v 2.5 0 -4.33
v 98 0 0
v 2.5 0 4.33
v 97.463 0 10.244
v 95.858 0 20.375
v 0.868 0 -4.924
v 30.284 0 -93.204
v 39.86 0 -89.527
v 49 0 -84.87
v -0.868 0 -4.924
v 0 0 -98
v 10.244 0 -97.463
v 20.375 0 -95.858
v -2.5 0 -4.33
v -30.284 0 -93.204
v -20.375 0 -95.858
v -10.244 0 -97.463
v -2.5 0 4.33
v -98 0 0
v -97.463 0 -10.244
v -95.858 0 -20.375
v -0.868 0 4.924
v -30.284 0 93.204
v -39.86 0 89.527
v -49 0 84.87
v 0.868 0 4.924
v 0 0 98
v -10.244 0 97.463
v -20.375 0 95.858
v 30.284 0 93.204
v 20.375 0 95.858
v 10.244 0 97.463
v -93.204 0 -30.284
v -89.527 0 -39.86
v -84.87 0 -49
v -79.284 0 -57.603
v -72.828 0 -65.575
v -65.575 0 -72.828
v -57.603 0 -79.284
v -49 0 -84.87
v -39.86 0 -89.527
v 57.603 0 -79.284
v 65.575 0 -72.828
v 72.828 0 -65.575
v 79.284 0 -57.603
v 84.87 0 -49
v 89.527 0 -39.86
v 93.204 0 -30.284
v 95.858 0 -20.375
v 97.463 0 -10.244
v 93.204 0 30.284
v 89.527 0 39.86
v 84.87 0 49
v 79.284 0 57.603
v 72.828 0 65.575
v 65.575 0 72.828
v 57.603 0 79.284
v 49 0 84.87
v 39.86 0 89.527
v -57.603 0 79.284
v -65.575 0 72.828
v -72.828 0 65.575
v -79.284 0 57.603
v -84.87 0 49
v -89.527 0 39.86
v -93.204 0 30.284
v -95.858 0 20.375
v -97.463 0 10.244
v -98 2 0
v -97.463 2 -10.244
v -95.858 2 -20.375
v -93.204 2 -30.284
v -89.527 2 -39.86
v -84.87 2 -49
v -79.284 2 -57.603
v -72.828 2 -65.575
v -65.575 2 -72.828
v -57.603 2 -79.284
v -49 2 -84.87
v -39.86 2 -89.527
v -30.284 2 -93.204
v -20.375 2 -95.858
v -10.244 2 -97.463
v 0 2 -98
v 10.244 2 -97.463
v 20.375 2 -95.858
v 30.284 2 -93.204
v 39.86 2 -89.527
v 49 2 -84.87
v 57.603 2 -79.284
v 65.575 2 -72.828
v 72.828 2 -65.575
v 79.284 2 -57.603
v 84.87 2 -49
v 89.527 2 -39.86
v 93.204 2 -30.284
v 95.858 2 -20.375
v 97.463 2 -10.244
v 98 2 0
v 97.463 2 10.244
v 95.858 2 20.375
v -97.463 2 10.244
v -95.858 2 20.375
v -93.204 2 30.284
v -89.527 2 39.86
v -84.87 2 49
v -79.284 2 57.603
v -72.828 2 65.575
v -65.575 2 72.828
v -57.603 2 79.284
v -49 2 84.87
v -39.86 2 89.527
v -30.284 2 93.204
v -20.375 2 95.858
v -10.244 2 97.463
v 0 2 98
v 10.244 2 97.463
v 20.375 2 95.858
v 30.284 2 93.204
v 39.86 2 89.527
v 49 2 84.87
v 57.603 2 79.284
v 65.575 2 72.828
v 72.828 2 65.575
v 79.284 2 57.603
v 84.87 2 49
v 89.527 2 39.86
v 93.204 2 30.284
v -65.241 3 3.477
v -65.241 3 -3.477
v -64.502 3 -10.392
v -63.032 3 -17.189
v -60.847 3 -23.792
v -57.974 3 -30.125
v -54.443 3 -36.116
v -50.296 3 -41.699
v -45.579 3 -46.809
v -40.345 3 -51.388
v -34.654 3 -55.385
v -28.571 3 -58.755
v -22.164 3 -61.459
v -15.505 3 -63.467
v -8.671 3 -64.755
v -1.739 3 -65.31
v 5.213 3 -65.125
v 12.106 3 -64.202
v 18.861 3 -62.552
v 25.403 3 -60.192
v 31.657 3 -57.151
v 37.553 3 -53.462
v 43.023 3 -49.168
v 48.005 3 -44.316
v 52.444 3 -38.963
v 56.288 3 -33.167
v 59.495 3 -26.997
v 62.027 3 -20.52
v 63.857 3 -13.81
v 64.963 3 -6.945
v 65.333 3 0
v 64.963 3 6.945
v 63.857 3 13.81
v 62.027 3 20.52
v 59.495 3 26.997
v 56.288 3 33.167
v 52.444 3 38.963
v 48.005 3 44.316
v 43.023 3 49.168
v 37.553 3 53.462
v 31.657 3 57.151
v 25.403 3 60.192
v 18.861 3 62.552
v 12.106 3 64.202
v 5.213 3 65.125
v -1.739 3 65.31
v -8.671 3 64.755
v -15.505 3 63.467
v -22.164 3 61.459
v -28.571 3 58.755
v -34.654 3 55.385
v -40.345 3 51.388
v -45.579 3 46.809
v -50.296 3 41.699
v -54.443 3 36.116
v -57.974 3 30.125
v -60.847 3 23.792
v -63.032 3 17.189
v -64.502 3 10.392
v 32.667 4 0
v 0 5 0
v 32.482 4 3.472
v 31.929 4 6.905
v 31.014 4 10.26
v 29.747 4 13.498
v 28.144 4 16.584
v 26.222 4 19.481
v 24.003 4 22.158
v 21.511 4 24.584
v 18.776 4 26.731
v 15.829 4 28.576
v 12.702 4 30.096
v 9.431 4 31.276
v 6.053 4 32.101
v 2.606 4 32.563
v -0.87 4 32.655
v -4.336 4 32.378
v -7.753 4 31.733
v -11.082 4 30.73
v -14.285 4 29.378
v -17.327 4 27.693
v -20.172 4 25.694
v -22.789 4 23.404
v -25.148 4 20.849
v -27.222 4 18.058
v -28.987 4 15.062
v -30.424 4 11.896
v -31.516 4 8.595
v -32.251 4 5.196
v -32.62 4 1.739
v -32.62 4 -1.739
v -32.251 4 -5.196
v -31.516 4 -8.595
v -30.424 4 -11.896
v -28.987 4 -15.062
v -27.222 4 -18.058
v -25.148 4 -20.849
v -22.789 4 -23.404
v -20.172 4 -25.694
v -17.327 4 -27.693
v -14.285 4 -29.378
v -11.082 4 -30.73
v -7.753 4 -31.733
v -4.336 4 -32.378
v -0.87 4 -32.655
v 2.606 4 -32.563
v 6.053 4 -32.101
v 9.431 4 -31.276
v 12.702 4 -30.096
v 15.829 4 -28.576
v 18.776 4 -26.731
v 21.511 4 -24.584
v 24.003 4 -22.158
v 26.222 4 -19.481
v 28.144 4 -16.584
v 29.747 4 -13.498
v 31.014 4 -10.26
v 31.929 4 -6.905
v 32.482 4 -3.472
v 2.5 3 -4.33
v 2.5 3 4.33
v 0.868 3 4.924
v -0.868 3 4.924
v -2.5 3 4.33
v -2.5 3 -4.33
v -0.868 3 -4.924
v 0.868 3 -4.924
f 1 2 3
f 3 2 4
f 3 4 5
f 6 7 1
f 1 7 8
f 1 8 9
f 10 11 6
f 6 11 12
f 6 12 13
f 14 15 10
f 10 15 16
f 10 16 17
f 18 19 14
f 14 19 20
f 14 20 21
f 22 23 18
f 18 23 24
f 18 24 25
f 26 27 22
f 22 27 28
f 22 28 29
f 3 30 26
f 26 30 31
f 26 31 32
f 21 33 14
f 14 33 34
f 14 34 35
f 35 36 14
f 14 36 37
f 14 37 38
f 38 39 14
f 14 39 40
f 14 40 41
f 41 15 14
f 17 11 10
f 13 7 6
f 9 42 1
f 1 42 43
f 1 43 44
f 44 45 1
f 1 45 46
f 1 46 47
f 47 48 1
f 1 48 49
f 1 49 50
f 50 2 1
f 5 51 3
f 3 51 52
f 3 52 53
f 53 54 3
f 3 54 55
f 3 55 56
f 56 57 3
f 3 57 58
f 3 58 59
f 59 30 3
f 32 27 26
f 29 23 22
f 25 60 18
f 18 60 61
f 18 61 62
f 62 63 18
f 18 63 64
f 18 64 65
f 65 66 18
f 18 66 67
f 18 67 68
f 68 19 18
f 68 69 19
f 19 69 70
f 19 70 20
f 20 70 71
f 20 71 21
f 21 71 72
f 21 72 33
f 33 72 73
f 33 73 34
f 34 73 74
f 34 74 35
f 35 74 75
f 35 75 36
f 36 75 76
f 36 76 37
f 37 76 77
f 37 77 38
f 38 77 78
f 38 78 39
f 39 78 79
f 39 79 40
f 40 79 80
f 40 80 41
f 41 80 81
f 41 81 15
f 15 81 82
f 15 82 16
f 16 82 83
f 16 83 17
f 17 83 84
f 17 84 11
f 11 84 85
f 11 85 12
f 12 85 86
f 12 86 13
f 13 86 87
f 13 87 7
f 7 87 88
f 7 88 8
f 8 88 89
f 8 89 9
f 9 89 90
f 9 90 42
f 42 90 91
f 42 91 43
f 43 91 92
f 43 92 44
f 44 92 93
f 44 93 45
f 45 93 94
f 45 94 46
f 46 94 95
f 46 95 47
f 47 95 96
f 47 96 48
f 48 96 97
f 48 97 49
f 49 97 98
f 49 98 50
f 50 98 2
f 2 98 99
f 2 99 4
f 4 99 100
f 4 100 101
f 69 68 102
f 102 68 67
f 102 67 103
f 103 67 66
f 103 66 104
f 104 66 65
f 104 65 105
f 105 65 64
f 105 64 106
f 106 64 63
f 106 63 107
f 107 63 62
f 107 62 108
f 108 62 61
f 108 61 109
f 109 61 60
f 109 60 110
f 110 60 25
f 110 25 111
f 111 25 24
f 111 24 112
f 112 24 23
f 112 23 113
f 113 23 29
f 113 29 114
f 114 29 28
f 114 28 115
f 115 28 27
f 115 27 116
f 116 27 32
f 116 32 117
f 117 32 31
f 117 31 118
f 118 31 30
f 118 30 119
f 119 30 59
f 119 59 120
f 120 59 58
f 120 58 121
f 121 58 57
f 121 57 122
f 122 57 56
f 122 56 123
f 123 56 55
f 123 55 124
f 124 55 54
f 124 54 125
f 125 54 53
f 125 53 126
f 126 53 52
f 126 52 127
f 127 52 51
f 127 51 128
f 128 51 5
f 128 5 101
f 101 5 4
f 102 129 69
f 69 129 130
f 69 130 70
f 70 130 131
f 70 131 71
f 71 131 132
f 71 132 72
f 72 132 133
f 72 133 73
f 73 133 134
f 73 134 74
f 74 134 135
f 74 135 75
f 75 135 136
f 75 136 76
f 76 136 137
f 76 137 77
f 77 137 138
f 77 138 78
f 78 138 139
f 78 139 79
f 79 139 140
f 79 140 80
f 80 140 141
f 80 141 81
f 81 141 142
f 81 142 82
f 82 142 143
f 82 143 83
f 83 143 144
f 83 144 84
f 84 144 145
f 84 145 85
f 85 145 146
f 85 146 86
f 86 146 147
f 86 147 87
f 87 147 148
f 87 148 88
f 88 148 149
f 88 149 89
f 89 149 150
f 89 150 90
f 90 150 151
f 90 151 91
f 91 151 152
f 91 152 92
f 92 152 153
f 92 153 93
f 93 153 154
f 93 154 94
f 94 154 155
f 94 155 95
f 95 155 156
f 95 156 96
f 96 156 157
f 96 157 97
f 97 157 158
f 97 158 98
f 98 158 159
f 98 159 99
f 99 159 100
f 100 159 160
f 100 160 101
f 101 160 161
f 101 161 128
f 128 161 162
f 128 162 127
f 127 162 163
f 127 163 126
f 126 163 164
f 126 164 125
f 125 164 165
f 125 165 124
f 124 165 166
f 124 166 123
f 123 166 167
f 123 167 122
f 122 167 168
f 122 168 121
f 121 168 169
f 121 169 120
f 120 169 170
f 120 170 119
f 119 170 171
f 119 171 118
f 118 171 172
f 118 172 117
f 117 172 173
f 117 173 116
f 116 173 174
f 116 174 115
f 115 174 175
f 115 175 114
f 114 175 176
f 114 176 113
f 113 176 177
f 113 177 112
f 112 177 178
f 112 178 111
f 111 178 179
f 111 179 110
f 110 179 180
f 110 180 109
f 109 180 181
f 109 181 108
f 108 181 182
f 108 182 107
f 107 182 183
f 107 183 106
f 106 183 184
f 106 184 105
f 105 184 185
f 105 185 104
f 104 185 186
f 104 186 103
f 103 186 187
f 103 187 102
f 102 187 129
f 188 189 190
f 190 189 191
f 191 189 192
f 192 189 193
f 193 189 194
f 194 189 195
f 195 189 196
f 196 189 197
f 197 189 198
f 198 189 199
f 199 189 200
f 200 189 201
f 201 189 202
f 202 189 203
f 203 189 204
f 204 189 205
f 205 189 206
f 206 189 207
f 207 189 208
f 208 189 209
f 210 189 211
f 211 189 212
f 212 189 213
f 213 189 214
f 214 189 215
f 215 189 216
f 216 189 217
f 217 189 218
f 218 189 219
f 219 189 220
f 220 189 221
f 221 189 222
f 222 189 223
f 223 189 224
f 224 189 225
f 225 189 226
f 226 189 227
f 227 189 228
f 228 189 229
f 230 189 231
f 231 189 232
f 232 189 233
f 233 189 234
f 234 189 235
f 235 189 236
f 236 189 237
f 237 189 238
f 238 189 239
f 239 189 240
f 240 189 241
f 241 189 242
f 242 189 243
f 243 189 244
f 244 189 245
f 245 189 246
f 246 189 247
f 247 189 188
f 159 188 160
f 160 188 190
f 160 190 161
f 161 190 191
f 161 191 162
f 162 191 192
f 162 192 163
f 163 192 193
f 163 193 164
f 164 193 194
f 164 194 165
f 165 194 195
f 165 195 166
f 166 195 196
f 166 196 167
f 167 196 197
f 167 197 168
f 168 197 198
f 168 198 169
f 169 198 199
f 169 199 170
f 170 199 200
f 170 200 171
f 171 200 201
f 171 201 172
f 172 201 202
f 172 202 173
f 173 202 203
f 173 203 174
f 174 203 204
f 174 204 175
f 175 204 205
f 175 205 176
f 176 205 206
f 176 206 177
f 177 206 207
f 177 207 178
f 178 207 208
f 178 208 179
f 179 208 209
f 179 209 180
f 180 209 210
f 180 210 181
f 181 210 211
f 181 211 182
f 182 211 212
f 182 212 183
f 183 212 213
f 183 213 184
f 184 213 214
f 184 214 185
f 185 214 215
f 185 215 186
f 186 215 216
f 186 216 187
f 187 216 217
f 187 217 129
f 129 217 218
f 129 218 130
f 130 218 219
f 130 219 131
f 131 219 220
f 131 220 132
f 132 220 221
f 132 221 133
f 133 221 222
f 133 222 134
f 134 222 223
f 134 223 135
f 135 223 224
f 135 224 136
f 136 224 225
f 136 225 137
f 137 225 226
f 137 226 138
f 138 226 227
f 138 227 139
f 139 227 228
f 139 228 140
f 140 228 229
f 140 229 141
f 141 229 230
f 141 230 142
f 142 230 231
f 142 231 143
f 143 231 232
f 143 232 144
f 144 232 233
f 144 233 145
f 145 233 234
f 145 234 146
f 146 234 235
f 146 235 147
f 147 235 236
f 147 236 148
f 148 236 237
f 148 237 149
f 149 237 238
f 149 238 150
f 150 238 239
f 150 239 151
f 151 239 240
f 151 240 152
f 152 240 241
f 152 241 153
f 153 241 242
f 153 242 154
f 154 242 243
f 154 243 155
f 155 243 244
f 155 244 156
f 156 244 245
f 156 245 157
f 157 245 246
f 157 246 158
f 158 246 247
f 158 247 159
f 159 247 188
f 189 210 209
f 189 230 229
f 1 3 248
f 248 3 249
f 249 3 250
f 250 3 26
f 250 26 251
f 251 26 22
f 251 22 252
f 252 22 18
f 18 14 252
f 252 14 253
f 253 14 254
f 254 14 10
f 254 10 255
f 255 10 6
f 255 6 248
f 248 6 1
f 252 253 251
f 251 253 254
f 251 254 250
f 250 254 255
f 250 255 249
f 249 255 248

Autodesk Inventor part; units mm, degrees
ref_plane "YZ Plane" through (0, 0, 0) normal (1, 0, 0) x (0, 1, 0)
ref_plane "XZ Plane" through (0, 0, 0) normal (0, 1, 0) x (-1, 0, 0)
ref_plane "XY Plane" through (0, 0, 0) normal (0, 0, 1) x (1, 0, 0)
sketch "Sketch1" plane through (0, 0, 0) normal (0, 0, 1) x (1, 0, 0)
  line L0 (-98, 0) -> (-98, 2)
  line L1 (-98, 2) -> (0, 5)
  line L2 (0, 5) -> (0, 0)
  line L3 (0, 0) -> (-98, 0)
  line L4 (0, -25) -> (0, 10) projected
  point P0 (0, -20)
  dimension "d3" = 2
revolve "Revolution1" add sketch "Sketch1" angle 360 about axis through (0, -10, 0) along (0, 1, 0)
sketch "Sketch2" plane through (0, 0, 0) normal (0, -1, 0) x (1, 0, 0)
  circle A0 centre (0, 0) radius 5
  line L0 (-2.5, -15.4211) -> (2.5, -15.4211)
  line L1 (2.5, -15.4211) -> (2.5, 15.4211)
  line L2 (2.5, 15.4211) -> (-2.5, 15.4211)
  line L3 (-2.5, 15.4211) -> (-2.5, -15.4211)
  line L4 (-2.5, -15.4211) -> (2.5, 15.4211) construction
  line L5 (2.5, -15.4211) -> (-2.5, 15.4211) construction
  point P0 (-2.5, 4.3301)
  point P1 (-2.5, -4.3301)
  point P2 (2.5, -4.3301)
  point P3 (2.5, 4.3301)
  dimension "d8" = 10
  dimension "d9" = 5
extrude "Extrusion1" cut sketch "Sketch2" against normal blind 3 contours L1 A0 L3
properties part number "centrer centrifugal spinner"
